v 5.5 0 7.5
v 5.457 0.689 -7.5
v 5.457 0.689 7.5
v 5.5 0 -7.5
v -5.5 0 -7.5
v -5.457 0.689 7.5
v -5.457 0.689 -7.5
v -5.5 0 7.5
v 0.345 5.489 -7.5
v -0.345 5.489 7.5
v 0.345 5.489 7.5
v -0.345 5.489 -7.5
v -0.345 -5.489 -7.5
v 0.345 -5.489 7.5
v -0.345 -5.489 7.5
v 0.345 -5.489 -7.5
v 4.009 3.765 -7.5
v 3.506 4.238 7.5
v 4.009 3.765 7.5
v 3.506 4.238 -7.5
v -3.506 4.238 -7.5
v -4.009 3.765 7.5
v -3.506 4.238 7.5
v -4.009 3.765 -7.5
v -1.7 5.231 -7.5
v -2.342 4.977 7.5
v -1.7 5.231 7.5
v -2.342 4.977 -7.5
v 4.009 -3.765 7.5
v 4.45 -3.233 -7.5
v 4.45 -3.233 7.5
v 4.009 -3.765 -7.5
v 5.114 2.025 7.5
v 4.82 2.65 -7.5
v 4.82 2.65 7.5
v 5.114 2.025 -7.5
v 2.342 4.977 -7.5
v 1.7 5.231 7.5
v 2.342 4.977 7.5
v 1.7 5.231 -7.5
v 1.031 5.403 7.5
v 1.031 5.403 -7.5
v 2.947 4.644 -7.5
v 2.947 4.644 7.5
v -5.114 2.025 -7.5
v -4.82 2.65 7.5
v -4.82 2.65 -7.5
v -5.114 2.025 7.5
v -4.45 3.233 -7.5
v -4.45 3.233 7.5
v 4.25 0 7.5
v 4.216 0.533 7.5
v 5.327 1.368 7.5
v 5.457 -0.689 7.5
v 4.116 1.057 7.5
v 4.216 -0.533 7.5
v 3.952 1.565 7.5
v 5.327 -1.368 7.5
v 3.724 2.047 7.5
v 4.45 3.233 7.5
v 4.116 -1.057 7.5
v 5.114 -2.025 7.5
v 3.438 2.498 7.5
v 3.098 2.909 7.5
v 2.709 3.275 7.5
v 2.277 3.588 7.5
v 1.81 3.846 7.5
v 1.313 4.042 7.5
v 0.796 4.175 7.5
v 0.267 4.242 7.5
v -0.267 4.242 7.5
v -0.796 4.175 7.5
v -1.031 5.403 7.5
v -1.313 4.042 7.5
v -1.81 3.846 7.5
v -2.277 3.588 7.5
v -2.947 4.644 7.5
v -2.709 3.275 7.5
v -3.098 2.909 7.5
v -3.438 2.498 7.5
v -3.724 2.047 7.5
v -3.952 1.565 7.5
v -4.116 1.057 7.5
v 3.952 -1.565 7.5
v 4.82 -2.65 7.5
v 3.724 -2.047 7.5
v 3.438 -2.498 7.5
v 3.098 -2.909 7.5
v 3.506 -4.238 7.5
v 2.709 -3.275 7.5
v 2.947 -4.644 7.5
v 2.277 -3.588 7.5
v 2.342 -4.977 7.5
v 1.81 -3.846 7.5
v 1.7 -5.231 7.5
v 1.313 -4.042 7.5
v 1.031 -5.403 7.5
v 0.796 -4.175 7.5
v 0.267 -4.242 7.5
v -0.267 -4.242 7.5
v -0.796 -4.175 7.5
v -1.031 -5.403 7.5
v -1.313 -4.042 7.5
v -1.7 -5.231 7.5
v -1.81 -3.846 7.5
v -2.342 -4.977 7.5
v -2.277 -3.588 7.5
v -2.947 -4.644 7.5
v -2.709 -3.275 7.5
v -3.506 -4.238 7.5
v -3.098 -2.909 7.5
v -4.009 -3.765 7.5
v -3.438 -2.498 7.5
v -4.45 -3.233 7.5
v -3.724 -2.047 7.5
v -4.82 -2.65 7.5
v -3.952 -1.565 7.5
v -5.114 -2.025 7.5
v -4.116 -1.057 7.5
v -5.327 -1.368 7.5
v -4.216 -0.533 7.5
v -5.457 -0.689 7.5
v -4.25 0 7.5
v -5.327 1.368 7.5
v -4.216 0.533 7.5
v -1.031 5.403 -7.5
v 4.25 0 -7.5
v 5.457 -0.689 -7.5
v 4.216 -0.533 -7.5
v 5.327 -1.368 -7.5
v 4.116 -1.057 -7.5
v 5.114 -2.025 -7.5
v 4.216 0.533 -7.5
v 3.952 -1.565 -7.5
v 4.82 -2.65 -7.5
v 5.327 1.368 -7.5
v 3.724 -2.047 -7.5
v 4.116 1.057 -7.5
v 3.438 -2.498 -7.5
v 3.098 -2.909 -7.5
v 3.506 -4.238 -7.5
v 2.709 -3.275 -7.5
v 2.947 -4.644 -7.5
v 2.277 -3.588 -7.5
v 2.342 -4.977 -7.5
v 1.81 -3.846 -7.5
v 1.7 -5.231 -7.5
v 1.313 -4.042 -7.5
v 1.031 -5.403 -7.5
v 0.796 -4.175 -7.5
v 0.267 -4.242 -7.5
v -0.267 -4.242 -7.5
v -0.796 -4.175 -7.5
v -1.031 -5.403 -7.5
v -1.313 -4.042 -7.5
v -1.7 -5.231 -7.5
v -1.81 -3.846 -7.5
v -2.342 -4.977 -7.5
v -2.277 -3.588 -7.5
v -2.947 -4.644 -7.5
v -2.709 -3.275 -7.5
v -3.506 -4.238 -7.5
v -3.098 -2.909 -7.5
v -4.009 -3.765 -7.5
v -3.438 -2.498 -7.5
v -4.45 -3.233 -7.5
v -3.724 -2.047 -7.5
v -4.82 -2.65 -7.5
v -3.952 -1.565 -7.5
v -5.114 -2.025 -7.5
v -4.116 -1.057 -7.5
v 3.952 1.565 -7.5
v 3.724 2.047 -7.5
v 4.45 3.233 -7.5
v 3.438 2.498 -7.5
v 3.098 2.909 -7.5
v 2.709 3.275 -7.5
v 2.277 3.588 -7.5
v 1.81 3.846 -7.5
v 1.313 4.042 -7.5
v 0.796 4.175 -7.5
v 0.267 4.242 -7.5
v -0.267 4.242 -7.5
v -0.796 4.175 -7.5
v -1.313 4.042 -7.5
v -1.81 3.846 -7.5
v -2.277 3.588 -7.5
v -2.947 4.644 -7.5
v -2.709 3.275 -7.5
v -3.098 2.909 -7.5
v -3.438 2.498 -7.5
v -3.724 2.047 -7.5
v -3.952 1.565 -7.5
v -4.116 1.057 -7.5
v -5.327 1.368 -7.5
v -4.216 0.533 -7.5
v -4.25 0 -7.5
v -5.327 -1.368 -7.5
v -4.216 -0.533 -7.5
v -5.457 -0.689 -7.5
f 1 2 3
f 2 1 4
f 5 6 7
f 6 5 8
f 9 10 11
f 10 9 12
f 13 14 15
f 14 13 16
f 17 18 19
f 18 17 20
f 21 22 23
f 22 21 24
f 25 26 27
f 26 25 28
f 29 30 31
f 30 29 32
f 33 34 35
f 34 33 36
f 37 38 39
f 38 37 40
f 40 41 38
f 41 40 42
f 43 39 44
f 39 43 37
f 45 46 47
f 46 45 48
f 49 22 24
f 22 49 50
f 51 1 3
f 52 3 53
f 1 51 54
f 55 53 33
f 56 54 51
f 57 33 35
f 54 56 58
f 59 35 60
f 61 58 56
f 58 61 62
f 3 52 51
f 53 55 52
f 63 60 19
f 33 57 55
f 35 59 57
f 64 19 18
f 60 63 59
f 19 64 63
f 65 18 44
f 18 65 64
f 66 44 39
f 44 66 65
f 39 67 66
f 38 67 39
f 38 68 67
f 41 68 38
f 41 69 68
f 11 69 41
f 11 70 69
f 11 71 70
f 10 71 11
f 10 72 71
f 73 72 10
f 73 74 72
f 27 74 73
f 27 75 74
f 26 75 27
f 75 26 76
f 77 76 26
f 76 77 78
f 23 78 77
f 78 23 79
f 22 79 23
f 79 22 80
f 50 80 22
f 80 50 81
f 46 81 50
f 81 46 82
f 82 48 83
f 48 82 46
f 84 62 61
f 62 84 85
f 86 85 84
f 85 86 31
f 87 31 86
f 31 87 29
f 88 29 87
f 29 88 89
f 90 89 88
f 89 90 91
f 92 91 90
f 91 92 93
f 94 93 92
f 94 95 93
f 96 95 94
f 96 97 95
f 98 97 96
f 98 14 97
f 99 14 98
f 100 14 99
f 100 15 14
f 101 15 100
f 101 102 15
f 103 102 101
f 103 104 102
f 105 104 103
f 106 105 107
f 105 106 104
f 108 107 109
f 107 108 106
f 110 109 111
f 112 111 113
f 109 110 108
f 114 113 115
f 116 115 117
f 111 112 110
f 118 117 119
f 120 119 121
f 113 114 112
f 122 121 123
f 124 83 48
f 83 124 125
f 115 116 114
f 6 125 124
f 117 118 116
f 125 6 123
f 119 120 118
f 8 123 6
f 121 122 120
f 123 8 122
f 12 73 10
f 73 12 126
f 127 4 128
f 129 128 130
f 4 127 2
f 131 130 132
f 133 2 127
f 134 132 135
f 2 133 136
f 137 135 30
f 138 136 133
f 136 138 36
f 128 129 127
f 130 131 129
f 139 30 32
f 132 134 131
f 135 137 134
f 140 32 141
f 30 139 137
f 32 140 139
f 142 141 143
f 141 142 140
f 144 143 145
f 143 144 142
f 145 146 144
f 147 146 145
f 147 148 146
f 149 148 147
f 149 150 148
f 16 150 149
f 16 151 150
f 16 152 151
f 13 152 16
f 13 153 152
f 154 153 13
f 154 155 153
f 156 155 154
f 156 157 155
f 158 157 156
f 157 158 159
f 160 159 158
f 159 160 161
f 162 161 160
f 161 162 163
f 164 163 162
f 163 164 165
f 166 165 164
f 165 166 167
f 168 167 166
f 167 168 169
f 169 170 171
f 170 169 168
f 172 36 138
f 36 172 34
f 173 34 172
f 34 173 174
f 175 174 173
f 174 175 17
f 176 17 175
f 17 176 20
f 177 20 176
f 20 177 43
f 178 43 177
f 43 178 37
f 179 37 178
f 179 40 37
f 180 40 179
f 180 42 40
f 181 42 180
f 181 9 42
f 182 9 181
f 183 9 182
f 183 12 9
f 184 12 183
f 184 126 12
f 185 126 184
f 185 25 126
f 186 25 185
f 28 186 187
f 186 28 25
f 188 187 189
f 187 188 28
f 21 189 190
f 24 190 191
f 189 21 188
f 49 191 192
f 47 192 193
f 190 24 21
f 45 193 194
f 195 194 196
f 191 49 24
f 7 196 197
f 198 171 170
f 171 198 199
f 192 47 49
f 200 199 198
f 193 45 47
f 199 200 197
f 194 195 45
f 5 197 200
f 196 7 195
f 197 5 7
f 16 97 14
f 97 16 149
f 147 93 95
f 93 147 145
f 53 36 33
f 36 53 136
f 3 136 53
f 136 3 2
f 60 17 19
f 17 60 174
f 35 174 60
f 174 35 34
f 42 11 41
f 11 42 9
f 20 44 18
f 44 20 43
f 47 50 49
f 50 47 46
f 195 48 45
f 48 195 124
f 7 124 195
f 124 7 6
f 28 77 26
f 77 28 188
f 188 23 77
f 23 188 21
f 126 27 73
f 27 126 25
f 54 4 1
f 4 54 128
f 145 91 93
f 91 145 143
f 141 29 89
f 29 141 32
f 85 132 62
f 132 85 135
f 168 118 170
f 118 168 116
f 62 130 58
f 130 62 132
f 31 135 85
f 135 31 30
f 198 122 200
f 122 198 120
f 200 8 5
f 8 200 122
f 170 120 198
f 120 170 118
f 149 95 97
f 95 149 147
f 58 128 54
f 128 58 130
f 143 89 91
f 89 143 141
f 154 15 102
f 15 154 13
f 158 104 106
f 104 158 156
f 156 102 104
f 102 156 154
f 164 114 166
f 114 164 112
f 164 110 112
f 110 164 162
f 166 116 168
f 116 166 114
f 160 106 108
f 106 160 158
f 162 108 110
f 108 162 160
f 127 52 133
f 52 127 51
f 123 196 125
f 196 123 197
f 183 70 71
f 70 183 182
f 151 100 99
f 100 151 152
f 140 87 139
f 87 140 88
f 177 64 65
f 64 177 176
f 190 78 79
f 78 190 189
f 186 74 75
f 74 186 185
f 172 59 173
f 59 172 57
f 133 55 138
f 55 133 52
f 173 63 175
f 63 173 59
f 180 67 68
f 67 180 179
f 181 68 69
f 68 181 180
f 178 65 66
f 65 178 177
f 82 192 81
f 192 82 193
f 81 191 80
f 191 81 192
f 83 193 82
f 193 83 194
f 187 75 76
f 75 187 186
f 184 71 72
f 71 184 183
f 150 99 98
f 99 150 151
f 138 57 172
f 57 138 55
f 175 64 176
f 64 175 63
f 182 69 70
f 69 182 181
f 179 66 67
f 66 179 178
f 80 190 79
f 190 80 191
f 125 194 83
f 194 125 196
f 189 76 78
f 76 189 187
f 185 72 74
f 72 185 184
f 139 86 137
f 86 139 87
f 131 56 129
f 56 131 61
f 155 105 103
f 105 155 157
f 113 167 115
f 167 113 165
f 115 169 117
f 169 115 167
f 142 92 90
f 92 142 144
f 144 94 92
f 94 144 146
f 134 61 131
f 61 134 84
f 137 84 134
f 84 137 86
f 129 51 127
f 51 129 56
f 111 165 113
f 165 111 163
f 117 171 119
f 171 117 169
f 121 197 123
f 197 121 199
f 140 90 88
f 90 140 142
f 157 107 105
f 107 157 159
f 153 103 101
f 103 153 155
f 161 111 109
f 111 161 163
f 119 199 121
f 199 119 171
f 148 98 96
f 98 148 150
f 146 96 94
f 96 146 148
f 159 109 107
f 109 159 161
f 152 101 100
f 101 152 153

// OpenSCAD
$fn = 50;


difference() {
	union() {
		translate(v = [0, 0, -7.5000000000]) {
			cylinder(h = 15, r = 5.5000000000);
		}
	}
	union() {
		translate(v = [0, 0, -100.0000000000]) {
			cylinder(h = 200, r = 4.2500000000);
		}
	}
}
